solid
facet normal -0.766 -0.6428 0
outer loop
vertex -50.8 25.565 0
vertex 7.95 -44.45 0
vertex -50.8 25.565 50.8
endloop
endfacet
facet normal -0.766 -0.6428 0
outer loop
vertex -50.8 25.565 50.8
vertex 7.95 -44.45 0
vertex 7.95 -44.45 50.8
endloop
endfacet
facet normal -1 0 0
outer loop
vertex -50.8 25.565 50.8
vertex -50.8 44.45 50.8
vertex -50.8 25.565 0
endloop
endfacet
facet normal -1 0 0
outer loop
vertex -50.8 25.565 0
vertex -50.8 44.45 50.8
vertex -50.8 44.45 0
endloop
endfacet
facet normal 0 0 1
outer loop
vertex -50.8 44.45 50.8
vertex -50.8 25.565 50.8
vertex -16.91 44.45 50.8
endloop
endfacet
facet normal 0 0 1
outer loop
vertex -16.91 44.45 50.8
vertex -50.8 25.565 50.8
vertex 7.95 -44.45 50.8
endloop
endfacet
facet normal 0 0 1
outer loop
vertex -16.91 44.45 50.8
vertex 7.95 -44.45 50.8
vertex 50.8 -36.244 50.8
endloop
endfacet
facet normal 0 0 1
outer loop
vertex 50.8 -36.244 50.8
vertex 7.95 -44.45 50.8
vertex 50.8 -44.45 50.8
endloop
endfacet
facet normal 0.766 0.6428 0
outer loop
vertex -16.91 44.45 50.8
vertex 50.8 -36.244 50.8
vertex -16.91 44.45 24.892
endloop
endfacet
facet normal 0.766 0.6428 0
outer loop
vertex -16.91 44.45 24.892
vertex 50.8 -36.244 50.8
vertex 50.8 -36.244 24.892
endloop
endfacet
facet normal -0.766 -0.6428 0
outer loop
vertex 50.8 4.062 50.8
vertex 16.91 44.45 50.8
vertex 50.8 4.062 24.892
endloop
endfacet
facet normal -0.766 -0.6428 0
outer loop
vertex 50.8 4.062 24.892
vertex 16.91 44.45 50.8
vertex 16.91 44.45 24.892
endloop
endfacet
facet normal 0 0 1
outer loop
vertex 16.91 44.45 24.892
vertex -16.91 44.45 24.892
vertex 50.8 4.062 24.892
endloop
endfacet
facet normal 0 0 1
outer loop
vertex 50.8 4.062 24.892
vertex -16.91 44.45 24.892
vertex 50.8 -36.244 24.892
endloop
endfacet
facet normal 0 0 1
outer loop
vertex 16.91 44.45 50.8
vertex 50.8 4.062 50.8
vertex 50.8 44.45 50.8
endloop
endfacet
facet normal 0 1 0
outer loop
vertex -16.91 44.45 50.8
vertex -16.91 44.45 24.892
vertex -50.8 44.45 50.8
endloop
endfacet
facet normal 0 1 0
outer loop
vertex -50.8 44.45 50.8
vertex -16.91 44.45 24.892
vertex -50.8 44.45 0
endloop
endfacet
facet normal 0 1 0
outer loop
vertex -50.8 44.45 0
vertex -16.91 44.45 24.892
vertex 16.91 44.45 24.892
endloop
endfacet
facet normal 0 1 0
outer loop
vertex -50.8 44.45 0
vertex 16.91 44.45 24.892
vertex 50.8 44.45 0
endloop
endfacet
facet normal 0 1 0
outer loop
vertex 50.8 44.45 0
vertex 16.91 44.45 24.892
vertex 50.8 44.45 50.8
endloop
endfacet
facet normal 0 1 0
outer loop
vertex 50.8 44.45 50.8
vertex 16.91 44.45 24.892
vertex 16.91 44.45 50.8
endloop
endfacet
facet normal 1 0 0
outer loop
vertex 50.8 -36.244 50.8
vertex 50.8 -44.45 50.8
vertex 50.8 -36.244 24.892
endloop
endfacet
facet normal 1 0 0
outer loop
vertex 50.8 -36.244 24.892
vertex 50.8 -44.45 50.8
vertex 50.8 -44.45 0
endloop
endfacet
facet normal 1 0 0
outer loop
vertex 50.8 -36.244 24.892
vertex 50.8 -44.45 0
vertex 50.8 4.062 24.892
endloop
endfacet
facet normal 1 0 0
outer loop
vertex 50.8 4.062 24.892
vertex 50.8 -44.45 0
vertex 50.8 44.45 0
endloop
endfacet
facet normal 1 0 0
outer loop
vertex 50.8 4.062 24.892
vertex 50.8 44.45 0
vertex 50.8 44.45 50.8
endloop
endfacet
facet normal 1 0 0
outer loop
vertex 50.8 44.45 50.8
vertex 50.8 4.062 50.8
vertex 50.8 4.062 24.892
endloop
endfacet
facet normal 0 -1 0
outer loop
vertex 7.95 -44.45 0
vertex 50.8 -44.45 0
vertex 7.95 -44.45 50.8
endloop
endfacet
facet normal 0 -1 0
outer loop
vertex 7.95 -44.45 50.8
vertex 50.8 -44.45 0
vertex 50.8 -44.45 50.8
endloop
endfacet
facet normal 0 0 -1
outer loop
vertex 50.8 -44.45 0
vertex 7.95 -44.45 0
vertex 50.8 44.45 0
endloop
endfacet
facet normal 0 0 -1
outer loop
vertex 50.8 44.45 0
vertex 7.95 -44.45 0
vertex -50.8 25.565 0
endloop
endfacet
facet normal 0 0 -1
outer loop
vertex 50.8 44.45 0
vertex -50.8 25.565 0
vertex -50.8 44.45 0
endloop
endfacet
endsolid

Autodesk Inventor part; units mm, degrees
ref_plane "YZ Plane" through (0, 0, 0) normal (1, 0, 0) x (0, 1, 0)
ref_plane "XZ Plane" through (0, 0, 0) normal (0, 1, 0) x (-1, 0, 0)
ref_plane "XY Plane" through (0, 0, 0) normal (0, 0, 1) x (1, 0, 0)
sketch "Sketch1" plane through (0, 0, 0) normal (0, 0, 1) x (1, 0, 0)
  line L0 (-50.8, -44.45) -> (50.8, -44.45)
  line L1 (50.8, -44.45) -> (50.8, 44.45)
  line L2 (50.8, 44.45) -> (-50.8, 44.45)
  line L3 (-50.8, 44.45) -> (-50.8, -44.45)
  line L4 (-50.8, -44.45) -> (50.8, 44.45) construction
  line L5 (50.8, -44.45) -> (-50.8, 44.45) construction
  point P0 (0, 0)
  dimension "d0" = 101.6
  dimension "d1" = 88.9
extrude "Extrusion1" add sketch "Sketch1" along normal blind 50.8
sketch "Sketch2" plane through (0, 0, 50.8) normal (0, 0, 1) x (1, 0, 0)
  line L0 (50.8, 44.45) -> (-50.8, 44.45) projected
  line L1 (0, 44.45) -> (50.8, -16.0911) construction
  line L2 (50.8, -44.45) -> (50.8, 44.45) projected
  line L3 (0, 44.45) -> (79.0308, 44.45) construction
  line L4 (16.9102, 44.45) -> (50.8, 4.0618)
  line L5 (-16.9102, 44.45) -> (50.8, -36.2439)
  line L6 (-16.9102, 44.45) -> (16.9102, 44.45)
  line L7 (50.8, 4.0618) -> (50.8, -36.2439)
  point P0 (0, 0)
  dimension "d4" = 50
  dimension "d5" = 12.954
  dimension "d15" = 12.954
extrude "Extrusion2" cut sketch "Sketch2" against normal blind 25.908 contours L4 L2 L5 L0
sketch "Sketch3" plane through (0, 0, 50.8) normal (0, 0, 1) x (1, 0, 0)
  line L0 (50.8, -36.2439) -> (-16.9102, 44.45) projected
  line L1 (-50.8, 44.45) -> (-50.8, -44.45) projected
  line L2 (-50.8, 25.5652) -> (7.9497, -44.45)
  line L3 (-50.8, -44.45) -> (50.8, -44.45) projected
  line L4 (7.9497, -44.45) -> (-50.8, -44.45)
  line L5 (-50.8, -44.45) -> (-50.8, 25.5652)
  point P0 (0, 0)
  dimension "d16" = 38.1
extrude "Extrusion3" cut sketch "Sketch3" against normal through all
equation "\"d5\" = 0.5 * widthFor1inch"
equation "\"d15\" = 0.5 * widthFor1inch"
equation "\"d7\" = widthFor1inch"
equation "\"widthFor1inch\" = 25.908"
properties part number "jjig02"
